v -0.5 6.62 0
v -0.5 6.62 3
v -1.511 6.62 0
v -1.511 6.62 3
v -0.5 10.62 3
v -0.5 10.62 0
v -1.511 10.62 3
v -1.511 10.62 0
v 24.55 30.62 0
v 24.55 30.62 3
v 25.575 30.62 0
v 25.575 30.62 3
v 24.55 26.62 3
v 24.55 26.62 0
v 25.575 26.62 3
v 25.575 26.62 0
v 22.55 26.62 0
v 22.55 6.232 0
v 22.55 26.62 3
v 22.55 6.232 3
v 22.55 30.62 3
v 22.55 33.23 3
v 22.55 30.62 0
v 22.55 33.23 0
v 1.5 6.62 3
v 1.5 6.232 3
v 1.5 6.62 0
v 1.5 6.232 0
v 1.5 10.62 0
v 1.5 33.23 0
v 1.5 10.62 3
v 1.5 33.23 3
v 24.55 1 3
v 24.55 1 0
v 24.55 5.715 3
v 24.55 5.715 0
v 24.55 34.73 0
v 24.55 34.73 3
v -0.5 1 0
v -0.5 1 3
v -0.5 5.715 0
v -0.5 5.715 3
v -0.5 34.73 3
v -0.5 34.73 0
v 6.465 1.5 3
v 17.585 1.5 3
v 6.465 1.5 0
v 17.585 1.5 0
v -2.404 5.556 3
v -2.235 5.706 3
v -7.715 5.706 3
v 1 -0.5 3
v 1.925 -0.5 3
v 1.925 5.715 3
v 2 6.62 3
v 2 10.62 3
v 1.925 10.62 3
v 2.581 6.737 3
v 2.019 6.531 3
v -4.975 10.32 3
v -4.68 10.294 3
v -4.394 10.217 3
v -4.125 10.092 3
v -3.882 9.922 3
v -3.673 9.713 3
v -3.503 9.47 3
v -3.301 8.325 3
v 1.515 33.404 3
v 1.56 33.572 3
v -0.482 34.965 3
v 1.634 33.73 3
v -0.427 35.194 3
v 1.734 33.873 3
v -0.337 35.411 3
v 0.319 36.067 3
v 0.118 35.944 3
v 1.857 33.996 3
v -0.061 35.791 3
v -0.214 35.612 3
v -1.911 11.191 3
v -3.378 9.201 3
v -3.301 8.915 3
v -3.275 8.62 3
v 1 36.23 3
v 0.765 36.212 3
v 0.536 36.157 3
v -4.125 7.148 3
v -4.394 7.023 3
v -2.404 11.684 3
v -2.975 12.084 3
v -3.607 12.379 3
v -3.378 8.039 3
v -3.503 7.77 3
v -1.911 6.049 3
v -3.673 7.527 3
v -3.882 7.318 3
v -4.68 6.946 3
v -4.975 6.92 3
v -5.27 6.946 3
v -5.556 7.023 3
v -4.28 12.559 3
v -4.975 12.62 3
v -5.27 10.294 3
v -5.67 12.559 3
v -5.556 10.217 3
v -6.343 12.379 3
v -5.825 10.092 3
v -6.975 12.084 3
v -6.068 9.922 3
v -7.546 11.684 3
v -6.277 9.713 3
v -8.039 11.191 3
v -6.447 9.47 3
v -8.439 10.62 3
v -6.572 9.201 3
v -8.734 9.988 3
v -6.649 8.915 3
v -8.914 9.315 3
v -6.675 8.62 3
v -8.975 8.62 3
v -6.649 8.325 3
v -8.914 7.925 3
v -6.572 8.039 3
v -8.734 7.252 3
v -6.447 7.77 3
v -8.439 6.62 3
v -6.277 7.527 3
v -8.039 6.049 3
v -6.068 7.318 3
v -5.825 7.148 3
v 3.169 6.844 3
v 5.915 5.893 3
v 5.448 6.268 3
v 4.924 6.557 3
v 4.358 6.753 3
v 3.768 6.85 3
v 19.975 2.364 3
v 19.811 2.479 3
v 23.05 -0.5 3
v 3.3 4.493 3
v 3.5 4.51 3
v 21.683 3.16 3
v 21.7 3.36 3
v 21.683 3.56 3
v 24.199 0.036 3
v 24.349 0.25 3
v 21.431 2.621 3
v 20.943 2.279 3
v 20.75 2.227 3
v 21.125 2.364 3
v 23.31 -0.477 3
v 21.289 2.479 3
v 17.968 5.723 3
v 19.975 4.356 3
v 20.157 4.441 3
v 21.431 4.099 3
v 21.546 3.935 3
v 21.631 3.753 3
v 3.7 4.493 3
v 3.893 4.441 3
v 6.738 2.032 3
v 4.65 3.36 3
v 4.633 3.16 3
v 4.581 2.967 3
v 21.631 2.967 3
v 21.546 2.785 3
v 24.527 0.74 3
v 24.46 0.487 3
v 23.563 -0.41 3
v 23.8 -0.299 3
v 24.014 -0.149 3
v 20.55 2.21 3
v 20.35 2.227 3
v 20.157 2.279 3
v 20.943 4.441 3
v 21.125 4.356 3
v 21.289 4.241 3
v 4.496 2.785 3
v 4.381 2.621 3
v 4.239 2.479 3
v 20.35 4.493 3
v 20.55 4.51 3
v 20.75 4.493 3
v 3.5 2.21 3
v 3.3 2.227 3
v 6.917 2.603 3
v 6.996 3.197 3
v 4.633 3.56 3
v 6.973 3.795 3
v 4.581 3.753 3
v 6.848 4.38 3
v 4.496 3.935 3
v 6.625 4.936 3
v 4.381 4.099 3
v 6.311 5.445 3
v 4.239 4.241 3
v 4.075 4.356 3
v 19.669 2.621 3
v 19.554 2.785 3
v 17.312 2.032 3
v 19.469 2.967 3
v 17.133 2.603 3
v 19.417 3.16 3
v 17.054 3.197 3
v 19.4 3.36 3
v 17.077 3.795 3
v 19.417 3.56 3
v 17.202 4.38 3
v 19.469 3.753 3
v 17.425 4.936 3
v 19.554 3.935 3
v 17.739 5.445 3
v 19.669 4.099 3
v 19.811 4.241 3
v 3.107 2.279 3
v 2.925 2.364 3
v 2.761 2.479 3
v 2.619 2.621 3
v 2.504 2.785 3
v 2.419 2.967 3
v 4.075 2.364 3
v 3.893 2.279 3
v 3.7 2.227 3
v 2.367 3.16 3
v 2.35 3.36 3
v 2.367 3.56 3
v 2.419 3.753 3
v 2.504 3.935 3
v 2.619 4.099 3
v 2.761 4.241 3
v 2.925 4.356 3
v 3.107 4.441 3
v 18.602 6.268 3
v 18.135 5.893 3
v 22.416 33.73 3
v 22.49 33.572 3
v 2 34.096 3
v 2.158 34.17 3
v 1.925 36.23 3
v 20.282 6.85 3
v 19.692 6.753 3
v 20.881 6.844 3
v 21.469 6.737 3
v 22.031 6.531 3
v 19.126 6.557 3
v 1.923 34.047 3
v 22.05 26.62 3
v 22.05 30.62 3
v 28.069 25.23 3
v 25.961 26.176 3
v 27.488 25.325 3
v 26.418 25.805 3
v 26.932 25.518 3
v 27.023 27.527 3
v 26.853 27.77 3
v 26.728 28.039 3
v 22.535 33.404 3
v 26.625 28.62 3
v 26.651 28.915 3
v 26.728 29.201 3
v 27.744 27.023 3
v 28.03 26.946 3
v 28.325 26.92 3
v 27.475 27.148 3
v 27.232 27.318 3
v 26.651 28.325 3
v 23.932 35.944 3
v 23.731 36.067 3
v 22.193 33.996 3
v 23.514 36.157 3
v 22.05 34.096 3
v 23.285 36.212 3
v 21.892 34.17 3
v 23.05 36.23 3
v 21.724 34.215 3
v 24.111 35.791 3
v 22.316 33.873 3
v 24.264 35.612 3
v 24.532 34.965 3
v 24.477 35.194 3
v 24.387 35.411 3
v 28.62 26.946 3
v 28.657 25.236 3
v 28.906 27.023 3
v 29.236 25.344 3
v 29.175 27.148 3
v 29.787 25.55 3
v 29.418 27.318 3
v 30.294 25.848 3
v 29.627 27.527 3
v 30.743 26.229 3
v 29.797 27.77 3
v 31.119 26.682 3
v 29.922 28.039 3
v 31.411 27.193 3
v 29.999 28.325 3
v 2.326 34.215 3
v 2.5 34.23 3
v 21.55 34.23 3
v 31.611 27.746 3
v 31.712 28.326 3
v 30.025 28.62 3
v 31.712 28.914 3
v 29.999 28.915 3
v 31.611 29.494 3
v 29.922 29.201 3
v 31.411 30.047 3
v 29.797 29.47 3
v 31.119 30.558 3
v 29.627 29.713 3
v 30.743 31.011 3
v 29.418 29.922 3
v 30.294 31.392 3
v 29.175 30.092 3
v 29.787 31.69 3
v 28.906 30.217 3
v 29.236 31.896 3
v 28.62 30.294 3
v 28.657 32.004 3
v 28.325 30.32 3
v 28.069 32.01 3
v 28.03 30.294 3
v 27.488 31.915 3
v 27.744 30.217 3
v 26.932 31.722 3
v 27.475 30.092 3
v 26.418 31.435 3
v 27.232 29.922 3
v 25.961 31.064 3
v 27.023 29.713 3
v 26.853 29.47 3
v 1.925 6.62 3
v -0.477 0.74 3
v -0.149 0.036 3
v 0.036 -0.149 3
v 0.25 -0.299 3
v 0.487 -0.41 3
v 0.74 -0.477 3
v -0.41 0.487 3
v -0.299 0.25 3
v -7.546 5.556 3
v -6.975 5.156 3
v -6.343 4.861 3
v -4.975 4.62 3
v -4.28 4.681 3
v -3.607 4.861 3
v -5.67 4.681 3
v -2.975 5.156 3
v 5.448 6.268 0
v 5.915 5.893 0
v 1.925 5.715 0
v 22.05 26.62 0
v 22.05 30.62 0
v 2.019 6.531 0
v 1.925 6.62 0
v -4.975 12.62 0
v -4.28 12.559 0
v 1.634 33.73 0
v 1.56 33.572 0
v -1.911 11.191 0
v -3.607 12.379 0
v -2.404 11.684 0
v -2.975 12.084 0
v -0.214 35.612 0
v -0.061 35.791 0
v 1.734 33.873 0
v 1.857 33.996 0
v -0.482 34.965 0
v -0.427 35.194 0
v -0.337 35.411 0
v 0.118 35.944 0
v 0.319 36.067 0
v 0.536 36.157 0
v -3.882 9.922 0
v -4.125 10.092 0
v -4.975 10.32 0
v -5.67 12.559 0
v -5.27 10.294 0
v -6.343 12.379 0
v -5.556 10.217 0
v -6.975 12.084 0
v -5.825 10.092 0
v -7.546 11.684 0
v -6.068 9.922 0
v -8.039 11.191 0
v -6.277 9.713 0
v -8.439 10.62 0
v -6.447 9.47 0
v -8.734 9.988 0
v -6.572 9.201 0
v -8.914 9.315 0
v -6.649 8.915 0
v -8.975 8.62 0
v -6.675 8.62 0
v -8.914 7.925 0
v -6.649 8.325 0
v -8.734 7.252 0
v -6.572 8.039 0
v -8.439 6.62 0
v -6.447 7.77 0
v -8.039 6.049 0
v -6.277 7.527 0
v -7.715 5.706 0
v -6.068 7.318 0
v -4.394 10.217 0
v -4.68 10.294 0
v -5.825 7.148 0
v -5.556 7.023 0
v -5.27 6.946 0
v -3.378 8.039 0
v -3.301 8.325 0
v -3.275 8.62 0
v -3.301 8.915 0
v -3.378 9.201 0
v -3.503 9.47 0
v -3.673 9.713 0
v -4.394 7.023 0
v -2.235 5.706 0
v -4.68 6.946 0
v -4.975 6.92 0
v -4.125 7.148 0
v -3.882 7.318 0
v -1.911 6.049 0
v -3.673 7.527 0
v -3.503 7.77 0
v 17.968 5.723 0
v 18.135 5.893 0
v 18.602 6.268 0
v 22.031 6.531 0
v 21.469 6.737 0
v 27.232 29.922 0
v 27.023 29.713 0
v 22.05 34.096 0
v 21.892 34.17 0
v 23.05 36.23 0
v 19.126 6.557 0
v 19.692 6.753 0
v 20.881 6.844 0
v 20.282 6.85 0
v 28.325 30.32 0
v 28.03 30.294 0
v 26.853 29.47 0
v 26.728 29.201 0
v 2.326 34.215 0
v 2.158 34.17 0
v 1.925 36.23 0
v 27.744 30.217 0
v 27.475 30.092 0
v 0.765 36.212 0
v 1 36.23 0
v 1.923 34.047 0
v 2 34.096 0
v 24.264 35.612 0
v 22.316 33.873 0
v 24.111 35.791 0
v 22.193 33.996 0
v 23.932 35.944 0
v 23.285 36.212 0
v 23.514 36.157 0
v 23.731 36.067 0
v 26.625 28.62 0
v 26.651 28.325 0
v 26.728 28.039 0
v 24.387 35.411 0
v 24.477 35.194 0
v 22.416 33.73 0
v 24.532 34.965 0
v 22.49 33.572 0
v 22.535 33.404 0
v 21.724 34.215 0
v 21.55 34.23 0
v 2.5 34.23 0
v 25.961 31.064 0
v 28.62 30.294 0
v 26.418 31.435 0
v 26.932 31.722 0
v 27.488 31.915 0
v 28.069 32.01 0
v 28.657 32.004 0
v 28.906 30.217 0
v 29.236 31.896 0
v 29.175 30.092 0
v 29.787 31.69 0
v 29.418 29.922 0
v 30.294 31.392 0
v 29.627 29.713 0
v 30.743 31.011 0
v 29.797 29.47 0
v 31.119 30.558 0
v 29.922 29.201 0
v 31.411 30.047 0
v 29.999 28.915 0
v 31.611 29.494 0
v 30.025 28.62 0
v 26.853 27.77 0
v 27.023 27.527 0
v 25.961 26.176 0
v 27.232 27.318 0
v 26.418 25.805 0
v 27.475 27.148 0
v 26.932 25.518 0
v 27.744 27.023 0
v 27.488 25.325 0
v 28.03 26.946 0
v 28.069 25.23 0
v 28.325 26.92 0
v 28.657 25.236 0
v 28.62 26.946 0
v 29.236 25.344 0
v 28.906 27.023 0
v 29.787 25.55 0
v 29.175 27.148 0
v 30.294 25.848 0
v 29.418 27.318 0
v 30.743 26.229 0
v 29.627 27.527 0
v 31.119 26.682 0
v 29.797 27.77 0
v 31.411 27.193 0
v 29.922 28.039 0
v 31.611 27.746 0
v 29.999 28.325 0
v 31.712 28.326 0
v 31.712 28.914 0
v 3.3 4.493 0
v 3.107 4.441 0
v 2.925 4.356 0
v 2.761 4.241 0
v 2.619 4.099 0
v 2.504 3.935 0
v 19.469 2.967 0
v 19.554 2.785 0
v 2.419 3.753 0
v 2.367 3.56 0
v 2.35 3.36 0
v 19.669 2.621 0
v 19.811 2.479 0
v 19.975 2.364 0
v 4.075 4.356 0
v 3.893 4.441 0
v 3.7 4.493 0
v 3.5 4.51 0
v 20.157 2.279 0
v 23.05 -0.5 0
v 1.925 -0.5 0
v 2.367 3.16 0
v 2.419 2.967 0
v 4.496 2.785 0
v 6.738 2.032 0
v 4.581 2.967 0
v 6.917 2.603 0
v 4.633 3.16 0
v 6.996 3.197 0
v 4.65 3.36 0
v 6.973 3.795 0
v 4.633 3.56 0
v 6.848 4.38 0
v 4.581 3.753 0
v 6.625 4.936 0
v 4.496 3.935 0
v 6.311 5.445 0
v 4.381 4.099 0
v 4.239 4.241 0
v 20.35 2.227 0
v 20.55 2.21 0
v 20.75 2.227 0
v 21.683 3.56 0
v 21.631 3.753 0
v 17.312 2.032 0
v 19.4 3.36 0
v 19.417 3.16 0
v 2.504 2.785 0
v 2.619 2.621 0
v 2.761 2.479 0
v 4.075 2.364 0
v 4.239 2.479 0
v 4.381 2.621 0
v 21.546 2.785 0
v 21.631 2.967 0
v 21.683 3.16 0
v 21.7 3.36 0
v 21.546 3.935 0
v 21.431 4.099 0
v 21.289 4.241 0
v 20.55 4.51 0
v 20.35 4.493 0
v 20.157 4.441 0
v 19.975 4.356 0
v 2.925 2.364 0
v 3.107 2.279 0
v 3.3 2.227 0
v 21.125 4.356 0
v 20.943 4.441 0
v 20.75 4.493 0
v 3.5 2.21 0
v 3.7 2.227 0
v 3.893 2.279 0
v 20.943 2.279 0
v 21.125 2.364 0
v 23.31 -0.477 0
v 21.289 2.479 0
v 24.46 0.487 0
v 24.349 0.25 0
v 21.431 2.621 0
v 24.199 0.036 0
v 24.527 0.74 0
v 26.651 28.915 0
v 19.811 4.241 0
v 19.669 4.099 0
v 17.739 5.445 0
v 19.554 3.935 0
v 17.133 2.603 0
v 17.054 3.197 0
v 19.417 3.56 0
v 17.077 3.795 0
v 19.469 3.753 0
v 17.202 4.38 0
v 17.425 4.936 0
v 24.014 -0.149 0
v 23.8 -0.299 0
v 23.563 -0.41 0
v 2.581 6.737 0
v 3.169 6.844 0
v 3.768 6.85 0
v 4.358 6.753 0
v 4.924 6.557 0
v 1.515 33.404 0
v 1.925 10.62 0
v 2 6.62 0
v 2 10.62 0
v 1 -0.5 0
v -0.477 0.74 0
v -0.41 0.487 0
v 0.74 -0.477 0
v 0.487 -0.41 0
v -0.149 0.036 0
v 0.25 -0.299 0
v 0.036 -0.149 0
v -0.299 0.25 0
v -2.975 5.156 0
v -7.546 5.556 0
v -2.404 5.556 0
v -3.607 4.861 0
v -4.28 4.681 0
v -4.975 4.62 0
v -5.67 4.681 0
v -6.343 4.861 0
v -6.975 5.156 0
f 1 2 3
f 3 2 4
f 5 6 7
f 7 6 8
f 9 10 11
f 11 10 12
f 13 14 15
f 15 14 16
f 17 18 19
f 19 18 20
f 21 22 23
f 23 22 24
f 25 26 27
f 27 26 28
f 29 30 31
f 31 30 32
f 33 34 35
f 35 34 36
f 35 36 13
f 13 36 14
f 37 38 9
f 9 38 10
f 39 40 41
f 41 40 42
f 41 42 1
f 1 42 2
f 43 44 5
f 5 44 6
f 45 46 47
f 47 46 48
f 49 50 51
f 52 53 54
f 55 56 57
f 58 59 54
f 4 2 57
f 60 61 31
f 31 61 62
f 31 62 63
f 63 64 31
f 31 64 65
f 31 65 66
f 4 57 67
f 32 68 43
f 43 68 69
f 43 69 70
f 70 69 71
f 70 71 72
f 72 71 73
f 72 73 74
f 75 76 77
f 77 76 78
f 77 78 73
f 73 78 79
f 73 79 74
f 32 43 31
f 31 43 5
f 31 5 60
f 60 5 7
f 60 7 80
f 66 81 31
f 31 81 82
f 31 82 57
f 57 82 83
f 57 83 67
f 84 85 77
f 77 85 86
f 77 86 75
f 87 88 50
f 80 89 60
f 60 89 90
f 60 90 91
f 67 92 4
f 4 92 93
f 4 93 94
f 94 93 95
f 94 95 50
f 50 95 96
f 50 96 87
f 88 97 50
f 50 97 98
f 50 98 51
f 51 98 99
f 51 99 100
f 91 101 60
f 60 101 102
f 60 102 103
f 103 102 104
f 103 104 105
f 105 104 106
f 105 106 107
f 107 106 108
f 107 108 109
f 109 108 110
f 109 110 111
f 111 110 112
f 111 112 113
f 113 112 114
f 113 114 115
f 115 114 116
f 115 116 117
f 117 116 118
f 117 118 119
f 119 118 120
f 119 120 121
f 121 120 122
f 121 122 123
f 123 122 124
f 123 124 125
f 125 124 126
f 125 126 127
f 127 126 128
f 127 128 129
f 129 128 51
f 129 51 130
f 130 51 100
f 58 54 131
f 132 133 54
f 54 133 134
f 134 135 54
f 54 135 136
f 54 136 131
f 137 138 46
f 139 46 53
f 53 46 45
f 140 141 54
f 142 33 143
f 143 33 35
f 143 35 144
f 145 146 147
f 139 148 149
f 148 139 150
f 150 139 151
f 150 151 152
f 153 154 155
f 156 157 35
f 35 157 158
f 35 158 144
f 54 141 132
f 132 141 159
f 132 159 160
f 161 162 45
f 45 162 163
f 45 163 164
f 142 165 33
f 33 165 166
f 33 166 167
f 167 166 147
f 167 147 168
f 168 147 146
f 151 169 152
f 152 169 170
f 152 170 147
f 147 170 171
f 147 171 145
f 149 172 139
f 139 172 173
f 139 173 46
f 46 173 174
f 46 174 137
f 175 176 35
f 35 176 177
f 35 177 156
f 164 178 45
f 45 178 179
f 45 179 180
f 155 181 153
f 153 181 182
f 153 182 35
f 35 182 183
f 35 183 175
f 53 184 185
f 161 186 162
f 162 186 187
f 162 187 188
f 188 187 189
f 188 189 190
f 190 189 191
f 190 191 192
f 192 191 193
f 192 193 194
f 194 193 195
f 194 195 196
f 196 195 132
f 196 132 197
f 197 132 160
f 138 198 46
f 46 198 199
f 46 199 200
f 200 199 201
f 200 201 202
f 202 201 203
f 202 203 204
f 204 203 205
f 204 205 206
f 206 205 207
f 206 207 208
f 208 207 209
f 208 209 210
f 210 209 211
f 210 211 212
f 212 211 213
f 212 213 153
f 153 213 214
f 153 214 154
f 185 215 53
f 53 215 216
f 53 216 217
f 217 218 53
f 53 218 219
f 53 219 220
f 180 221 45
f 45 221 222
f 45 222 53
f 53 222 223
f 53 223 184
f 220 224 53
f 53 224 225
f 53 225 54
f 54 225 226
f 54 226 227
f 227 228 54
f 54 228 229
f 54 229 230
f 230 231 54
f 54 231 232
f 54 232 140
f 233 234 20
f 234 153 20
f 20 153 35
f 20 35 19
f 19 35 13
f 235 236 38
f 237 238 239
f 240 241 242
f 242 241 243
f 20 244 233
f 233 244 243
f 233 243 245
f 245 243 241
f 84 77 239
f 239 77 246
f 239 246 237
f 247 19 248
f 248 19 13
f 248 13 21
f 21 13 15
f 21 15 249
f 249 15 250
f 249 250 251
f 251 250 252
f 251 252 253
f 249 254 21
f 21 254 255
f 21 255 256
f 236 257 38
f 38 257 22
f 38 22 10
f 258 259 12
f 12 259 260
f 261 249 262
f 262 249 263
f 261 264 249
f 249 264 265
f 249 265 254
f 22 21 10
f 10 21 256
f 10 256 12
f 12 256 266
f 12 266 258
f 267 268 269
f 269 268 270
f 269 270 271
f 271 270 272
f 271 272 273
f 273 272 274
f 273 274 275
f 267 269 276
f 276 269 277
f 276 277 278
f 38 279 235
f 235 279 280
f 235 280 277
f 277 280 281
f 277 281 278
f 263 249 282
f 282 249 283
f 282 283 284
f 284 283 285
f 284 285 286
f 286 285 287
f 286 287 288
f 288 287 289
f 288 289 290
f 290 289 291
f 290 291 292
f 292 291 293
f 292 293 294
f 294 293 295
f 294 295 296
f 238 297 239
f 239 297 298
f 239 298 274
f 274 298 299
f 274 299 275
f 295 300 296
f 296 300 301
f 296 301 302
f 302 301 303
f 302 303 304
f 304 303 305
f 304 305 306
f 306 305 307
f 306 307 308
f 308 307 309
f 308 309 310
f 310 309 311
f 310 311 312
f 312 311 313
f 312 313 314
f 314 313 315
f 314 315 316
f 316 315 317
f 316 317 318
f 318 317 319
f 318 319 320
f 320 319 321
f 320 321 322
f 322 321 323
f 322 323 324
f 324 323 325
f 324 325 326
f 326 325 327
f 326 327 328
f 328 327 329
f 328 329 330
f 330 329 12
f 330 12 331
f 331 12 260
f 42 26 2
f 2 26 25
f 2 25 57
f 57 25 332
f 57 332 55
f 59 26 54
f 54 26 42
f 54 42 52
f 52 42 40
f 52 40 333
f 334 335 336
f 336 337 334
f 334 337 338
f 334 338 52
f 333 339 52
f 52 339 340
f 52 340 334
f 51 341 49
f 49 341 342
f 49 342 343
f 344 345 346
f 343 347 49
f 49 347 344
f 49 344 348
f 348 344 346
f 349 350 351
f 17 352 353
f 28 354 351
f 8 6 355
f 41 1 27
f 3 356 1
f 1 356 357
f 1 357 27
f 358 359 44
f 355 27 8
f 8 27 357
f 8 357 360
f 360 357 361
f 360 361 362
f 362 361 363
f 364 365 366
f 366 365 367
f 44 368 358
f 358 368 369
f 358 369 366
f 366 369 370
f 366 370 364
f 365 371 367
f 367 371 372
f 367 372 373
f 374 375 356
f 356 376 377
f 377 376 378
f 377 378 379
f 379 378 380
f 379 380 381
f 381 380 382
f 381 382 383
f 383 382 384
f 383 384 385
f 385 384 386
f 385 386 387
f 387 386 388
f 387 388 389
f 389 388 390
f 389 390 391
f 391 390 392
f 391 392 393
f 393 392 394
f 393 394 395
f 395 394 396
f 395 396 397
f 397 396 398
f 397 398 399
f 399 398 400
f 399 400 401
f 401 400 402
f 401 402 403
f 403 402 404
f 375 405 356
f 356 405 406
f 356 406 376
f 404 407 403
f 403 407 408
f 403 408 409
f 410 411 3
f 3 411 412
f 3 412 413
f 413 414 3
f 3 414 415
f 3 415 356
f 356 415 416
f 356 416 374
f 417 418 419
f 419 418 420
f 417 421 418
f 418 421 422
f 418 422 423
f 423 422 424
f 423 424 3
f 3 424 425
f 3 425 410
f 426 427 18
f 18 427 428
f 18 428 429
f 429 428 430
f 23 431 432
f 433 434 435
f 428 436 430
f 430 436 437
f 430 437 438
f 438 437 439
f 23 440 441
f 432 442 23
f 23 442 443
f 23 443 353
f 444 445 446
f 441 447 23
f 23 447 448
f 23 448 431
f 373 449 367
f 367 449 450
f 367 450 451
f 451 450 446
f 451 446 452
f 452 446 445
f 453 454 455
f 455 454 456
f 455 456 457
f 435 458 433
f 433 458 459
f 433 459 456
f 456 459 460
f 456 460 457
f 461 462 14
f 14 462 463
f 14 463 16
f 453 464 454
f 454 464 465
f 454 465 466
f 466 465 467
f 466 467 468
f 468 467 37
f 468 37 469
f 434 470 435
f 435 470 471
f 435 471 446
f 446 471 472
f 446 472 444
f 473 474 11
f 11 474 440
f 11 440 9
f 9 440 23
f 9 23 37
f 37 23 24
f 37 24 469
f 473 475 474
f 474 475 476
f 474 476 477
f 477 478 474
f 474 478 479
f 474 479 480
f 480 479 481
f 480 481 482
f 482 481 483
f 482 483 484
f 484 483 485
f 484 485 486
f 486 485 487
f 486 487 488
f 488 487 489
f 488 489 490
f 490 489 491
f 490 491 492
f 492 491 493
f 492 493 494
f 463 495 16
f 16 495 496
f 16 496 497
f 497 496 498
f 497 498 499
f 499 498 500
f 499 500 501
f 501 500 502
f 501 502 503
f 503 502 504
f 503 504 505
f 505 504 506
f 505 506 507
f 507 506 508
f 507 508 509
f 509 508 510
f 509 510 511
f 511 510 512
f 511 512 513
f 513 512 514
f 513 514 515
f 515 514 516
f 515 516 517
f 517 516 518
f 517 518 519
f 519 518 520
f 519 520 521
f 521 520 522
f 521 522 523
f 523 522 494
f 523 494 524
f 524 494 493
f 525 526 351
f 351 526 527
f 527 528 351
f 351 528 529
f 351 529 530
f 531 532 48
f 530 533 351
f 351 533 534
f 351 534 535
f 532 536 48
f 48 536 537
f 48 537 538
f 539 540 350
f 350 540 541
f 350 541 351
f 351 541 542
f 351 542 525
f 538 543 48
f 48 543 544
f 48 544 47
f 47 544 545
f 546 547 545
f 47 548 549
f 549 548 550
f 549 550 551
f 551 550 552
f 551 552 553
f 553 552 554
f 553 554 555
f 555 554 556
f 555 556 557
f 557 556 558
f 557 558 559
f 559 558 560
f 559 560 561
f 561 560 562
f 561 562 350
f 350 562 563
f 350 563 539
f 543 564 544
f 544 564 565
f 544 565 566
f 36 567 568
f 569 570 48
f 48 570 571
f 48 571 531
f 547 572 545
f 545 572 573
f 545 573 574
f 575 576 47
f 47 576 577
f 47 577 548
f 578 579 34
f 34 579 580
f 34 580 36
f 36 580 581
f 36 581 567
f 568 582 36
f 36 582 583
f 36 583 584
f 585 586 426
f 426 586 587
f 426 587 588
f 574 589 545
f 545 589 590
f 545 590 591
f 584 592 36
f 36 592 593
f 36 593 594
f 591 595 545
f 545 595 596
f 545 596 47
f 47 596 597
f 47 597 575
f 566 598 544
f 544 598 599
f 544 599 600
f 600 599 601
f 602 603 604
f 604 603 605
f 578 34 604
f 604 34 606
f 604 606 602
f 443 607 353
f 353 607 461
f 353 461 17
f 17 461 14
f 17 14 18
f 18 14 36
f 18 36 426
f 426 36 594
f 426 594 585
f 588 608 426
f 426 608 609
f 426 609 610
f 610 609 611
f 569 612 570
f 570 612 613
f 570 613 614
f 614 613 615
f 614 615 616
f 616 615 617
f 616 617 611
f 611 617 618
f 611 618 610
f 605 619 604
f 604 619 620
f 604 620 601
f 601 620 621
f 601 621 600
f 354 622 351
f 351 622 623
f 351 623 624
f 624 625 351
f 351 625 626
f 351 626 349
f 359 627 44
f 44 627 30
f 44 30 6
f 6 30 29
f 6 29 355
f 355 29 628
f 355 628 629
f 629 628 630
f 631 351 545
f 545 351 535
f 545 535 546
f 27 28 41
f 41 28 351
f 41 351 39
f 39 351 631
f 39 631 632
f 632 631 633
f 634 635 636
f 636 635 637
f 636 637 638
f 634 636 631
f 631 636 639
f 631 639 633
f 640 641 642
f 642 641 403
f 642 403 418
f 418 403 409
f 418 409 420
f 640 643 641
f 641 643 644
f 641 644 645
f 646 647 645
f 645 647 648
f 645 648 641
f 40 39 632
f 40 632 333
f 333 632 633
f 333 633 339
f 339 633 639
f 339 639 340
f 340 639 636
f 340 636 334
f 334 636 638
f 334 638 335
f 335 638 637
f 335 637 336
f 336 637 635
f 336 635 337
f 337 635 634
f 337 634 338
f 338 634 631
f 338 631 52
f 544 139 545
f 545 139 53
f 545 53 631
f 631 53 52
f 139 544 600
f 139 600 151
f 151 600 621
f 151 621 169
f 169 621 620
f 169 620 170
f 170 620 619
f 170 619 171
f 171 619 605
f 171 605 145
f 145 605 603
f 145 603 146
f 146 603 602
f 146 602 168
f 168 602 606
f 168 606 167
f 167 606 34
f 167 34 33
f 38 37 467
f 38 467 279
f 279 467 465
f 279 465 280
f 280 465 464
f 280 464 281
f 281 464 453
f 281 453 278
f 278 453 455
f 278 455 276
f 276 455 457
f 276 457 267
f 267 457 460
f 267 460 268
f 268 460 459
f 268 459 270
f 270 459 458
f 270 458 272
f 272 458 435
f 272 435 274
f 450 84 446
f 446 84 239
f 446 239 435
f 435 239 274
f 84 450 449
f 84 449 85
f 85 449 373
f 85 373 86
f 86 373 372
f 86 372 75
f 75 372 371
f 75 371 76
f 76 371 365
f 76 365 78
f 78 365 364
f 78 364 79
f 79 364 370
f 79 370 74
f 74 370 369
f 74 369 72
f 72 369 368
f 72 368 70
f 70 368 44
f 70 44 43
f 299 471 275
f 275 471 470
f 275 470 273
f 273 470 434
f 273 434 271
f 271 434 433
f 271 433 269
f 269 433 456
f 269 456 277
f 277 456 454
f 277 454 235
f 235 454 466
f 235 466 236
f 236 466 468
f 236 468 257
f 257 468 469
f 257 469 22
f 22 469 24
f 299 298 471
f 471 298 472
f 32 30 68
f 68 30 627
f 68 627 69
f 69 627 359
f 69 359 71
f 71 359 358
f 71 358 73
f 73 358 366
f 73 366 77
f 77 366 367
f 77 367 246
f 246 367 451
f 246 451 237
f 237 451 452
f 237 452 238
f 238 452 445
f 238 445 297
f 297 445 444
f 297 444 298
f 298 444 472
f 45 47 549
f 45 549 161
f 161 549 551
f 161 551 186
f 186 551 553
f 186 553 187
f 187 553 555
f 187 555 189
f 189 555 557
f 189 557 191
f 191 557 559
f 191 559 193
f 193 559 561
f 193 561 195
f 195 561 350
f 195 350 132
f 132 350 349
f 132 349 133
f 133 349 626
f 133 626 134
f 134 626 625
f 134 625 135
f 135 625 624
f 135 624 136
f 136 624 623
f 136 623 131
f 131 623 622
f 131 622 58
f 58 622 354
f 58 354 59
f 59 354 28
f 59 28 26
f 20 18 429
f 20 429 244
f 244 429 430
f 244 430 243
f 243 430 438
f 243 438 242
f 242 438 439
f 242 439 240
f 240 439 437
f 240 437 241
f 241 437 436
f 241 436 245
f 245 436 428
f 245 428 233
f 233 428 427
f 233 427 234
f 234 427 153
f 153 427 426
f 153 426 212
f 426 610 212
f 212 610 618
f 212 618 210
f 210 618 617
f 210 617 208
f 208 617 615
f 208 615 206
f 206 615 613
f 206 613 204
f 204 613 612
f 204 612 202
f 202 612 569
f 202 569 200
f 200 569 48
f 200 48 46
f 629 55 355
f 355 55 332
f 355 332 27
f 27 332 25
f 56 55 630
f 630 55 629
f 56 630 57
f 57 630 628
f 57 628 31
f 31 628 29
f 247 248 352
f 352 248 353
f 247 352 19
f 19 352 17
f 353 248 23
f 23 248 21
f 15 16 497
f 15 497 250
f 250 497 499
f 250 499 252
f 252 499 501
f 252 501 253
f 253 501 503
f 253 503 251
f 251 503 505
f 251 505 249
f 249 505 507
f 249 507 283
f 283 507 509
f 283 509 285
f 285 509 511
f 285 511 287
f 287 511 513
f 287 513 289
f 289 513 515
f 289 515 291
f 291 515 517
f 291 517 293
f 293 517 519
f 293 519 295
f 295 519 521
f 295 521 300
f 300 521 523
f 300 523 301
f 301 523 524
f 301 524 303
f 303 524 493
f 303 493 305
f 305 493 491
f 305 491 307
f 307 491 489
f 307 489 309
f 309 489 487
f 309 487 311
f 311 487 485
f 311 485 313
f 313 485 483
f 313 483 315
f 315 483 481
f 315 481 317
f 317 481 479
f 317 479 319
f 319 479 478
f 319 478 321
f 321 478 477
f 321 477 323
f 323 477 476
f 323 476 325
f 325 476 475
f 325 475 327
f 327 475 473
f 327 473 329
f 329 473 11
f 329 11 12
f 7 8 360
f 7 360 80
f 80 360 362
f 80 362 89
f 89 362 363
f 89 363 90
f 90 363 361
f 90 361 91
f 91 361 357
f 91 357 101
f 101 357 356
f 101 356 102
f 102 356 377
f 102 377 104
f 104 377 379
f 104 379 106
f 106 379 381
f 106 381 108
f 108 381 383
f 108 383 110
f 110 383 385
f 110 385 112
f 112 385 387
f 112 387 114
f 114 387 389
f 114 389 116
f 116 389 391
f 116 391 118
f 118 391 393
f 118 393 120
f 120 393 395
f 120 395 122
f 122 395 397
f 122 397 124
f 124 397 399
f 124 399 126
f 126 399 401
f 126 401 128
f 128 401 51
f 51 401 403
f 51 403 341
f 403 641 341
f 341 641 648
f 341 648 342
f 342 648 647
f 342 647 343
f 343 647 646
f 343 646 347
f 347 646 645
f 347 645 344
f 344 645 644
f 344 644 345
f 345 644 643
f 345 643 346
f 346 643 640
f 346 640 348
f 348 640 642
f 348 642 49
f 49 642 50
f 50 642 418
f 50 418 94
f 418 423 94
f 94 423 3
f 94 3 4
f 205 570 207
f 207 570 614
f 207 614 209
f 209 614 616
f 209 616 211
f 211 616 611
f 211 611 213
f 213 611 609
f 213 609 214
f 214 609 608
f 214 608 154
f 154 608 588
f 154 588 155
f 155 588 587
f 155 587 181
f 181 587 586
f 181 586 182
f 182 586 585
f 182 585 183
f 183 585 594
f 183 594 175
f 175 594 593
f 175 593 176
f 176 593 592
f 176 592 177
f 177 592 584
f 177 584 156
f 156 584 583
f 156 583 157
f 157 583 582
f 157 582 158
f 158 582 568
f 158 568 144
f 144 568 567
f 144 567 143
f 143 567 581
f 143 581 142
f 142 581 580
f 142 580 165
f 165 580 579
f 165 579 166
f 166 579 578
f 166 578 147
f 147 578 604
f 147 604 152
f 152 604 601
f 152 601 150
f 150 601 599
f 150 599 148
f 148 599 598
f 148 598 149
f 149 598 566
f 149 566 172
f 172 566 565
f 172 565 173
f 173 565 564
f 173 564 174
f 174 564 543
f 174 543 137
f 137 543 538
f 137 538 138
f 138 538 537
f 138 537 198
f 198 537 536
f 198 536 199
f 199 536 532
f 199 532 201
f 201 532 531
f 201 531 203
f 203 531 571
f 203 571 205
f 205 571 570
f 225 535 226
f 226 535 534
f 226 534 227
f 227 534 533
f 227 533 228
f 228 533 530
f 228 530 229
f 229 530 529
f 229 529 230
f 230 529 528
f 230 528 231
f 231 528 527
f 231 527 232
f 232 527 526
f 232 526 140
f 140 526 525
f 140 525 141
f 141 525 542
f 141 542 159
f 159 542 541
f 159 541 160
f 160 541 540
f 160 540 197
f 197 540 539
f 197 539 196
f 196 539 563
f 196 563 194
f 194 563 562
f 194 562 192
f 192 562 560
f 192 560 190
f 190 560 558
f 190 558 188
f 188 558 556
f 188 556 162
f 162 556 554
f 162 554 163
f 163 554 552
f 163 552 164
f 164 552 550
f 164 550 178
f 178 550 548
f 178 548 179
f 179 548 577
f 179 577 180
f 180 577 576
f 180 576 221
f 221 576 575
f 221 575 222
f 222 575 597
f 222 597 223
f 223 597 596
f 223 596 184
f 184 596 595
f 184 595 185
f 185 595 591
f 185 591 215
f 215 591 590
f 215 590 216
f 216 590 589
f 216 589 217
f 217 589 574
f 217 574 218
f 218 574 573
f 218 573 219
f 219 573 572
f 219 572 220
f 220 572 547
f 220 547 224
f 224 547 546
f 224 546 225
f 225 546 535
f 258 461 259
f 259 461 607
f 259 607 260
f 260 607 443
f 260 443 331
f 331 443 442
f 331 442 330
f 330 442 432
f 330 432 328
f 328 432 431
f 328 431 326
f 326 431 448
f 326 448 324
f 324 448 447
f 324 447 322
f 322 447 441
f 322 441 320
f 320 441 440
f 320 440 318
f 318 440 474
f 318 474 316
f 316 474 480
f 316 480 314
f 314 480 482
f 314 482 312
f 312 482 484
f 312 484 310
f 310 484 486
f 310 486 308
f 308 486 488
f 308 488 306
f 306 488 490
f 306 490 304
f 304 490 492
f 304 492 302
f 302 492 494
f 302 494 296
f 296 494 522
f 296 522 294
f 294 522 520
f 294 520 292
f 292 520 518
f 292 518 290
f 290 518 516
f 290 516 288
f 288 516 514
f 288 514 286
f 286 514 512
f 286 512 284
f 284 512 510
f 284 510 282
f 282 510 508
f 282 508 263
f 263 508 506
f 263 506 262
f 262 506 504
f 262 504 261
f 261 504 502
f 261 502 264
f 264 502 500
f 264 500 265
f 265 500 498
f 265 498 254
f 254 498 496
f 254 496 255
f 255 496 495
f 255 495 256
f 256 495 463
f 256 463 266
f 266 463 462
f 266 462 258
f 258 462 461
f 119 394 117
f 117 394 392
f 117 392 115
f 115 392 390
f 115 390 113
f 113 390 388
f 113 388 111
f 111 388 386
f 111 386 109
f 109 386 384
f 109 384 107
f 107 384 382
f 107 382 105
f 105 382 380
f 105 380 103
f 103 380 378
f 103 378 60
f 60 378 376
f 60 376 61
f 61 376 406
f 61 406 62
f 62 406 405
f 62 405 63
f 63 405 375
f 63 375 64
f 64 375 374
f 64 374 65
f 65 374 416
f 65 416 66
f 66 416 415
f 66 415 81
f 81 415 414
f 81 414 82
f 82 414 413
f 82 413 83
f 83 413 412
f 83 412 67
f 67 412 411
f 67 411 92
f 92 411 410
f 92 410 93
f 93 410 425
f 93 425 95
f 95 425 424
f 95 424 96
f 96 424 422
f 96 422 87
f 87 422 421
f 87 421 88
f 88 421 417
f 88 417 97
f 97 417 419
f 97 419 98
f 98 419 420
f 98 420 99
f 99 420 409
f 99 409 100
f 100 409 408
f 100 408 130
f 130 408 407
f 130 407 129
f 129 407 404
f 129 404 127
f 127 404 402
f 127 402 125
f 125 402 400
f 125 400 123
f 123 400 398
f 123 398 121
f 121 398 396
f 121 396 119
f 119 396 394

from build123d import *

# Parameters (mm, degrees)
PCB_EDGE_SUPPORT_DEPTH       = 3
SKETCH_2_R                   = 3.5
PCB_SCREW_LANDS_DEPTH        = 3
SKETCH_3_W                   = 6.975
SKETCH_3_H                   = 4
SKETCH_3_W_2                 = 5.975
FLOATING_MOUNT_BRIDGES_DEPTH = 3
SKETCH_4_R                   = 4
SKETCH_4_R_2                 = 3.4
FLOATING_MOUNT_EARS_DEPTH    = 3
SKETCH_5_R                   = 1.15
PCB_M2_CLEARANCE_DEPTH       = 4
SKETCH_6_R                   = 1.7
M2_ADJUSTMENT_0P7_DEPTH      = 4


with BuildPart() as part:
    # 草图1 → PCB_edge_support (new body)
    with BuildSketch(Plane.XY):
        with BuildLine():
            Line((1, -0.5), (23.05, -0.5))
            ThreePointArc((23.05, -0.5), (24.110660172, -0.060660172), (24.55, 1))
            Line((24.55, 1), (24.55, 34.73))
            ThreePointArc((24.55, 34.73), (24.110660172, 35.790660172), (23.05, 36.23))
            Line((23.05, 36.23), (1, 36.23))
            ThreePointArc((1, 36.23), (-0.060660172, 35.790660172), (-0.5, 34.73))
            Line((-0.5, 34.73), (-0.5, 1))
            ThreePointArc((-0.5, 1), (-0.060660172, -0.060660172), (1, -0.5))
        make_face()
        with BuildLine():
            Line((2.5, 1.5), (21.55, 1.5))
            ThreePointArc((21.55, 1.5), (22.257106781, 1.792893219), (22.55, 2.5))
            Line((22.55, 2.5), (22.55, 33.23))
            ThreePointArc((22.55, 33.23), (22.257106781, 33.937106781), (21.55, 34.23))
            Line((21.55, 34.23), (2.5, 34.23))
            ThreePointArc((2.5, 34.23), (1.792893219, 33.937106781), (1.5, 33.23))
            Line((1.5, 33.23), (1.5, 2.5))
            ThreePointArc((1.5, 2.5), (1.792893219, 1.792893219), (2.5, 1.5))
        make_face(mode=Mode.SUBTRACT)
    extrude(amount=PCB_EDGE_SUPPORT_DEPTH)

    # 草图2 → PCB_screw_lands (add)
    with BuildSketch(Plane.XY):
        with Locations((3.5, 3.36)):
            Circle(SKETCH_2_R)
        with Locations((20.55, 3.36)):
            Circle(SKETCH_2_R)
    extrude(amount=PCB_SCREW_LANDS_DEPTH)

    # 草图3 → Floating_mount_bridges (add)
    with BuildSketch(Plane.XY):
        with Locations((-1.4875, 8.62)):
            Rectangle(SKETCH_3_W, SKETCH_3_H)
        with Locations((25.0375, 28.62)):
            Rectangle(SKETCH_3_W_2, SKETCH_3_H)
    extrude(amount=FLOATING_MOUNT_BRIDGES_DEPTH)

    # 草图4 → Floating_mount_ears (add)
    with BuildSketch(Plane.XY):
        with Locations((-4.975, 8.62)):
            Circle(SKETCH_4_R)
        with Locations((28.325, 28.62)):
            Circle(SKETCH_4_R_2)
    extrude(amount=FLOATING_MOUNT_EARS_DEPTH)

    # 草图5 → PCB_M2_clearance (cut)
    with BuildSketch(Plane.XY):
        with Locations((3.5, 3.36)):
            Circle(SKETCH_5_R)
        with Locations((20.55, 3.36)):
            Circle(SKETCH_5_R)
    extrude(amount=PCB_M2_CLEARANCE_DEPTH, mode=Mode.SUBTRACT)

    # 草图6 → M2_adjustment_0p7 (cut)
    with BuildSketch(Plane.XY):
        with Locations((-4.975, 8.62)):
            Circle(SKETCH_6_R)
        with Locations((28.325, 28.62)):
            Circle(SKETCH_6_R)
    extrude(amount=M2_ADJUSTMENT_0P7_DEPTH, mode=Mode.SUBTRACT)


solid = part.part
